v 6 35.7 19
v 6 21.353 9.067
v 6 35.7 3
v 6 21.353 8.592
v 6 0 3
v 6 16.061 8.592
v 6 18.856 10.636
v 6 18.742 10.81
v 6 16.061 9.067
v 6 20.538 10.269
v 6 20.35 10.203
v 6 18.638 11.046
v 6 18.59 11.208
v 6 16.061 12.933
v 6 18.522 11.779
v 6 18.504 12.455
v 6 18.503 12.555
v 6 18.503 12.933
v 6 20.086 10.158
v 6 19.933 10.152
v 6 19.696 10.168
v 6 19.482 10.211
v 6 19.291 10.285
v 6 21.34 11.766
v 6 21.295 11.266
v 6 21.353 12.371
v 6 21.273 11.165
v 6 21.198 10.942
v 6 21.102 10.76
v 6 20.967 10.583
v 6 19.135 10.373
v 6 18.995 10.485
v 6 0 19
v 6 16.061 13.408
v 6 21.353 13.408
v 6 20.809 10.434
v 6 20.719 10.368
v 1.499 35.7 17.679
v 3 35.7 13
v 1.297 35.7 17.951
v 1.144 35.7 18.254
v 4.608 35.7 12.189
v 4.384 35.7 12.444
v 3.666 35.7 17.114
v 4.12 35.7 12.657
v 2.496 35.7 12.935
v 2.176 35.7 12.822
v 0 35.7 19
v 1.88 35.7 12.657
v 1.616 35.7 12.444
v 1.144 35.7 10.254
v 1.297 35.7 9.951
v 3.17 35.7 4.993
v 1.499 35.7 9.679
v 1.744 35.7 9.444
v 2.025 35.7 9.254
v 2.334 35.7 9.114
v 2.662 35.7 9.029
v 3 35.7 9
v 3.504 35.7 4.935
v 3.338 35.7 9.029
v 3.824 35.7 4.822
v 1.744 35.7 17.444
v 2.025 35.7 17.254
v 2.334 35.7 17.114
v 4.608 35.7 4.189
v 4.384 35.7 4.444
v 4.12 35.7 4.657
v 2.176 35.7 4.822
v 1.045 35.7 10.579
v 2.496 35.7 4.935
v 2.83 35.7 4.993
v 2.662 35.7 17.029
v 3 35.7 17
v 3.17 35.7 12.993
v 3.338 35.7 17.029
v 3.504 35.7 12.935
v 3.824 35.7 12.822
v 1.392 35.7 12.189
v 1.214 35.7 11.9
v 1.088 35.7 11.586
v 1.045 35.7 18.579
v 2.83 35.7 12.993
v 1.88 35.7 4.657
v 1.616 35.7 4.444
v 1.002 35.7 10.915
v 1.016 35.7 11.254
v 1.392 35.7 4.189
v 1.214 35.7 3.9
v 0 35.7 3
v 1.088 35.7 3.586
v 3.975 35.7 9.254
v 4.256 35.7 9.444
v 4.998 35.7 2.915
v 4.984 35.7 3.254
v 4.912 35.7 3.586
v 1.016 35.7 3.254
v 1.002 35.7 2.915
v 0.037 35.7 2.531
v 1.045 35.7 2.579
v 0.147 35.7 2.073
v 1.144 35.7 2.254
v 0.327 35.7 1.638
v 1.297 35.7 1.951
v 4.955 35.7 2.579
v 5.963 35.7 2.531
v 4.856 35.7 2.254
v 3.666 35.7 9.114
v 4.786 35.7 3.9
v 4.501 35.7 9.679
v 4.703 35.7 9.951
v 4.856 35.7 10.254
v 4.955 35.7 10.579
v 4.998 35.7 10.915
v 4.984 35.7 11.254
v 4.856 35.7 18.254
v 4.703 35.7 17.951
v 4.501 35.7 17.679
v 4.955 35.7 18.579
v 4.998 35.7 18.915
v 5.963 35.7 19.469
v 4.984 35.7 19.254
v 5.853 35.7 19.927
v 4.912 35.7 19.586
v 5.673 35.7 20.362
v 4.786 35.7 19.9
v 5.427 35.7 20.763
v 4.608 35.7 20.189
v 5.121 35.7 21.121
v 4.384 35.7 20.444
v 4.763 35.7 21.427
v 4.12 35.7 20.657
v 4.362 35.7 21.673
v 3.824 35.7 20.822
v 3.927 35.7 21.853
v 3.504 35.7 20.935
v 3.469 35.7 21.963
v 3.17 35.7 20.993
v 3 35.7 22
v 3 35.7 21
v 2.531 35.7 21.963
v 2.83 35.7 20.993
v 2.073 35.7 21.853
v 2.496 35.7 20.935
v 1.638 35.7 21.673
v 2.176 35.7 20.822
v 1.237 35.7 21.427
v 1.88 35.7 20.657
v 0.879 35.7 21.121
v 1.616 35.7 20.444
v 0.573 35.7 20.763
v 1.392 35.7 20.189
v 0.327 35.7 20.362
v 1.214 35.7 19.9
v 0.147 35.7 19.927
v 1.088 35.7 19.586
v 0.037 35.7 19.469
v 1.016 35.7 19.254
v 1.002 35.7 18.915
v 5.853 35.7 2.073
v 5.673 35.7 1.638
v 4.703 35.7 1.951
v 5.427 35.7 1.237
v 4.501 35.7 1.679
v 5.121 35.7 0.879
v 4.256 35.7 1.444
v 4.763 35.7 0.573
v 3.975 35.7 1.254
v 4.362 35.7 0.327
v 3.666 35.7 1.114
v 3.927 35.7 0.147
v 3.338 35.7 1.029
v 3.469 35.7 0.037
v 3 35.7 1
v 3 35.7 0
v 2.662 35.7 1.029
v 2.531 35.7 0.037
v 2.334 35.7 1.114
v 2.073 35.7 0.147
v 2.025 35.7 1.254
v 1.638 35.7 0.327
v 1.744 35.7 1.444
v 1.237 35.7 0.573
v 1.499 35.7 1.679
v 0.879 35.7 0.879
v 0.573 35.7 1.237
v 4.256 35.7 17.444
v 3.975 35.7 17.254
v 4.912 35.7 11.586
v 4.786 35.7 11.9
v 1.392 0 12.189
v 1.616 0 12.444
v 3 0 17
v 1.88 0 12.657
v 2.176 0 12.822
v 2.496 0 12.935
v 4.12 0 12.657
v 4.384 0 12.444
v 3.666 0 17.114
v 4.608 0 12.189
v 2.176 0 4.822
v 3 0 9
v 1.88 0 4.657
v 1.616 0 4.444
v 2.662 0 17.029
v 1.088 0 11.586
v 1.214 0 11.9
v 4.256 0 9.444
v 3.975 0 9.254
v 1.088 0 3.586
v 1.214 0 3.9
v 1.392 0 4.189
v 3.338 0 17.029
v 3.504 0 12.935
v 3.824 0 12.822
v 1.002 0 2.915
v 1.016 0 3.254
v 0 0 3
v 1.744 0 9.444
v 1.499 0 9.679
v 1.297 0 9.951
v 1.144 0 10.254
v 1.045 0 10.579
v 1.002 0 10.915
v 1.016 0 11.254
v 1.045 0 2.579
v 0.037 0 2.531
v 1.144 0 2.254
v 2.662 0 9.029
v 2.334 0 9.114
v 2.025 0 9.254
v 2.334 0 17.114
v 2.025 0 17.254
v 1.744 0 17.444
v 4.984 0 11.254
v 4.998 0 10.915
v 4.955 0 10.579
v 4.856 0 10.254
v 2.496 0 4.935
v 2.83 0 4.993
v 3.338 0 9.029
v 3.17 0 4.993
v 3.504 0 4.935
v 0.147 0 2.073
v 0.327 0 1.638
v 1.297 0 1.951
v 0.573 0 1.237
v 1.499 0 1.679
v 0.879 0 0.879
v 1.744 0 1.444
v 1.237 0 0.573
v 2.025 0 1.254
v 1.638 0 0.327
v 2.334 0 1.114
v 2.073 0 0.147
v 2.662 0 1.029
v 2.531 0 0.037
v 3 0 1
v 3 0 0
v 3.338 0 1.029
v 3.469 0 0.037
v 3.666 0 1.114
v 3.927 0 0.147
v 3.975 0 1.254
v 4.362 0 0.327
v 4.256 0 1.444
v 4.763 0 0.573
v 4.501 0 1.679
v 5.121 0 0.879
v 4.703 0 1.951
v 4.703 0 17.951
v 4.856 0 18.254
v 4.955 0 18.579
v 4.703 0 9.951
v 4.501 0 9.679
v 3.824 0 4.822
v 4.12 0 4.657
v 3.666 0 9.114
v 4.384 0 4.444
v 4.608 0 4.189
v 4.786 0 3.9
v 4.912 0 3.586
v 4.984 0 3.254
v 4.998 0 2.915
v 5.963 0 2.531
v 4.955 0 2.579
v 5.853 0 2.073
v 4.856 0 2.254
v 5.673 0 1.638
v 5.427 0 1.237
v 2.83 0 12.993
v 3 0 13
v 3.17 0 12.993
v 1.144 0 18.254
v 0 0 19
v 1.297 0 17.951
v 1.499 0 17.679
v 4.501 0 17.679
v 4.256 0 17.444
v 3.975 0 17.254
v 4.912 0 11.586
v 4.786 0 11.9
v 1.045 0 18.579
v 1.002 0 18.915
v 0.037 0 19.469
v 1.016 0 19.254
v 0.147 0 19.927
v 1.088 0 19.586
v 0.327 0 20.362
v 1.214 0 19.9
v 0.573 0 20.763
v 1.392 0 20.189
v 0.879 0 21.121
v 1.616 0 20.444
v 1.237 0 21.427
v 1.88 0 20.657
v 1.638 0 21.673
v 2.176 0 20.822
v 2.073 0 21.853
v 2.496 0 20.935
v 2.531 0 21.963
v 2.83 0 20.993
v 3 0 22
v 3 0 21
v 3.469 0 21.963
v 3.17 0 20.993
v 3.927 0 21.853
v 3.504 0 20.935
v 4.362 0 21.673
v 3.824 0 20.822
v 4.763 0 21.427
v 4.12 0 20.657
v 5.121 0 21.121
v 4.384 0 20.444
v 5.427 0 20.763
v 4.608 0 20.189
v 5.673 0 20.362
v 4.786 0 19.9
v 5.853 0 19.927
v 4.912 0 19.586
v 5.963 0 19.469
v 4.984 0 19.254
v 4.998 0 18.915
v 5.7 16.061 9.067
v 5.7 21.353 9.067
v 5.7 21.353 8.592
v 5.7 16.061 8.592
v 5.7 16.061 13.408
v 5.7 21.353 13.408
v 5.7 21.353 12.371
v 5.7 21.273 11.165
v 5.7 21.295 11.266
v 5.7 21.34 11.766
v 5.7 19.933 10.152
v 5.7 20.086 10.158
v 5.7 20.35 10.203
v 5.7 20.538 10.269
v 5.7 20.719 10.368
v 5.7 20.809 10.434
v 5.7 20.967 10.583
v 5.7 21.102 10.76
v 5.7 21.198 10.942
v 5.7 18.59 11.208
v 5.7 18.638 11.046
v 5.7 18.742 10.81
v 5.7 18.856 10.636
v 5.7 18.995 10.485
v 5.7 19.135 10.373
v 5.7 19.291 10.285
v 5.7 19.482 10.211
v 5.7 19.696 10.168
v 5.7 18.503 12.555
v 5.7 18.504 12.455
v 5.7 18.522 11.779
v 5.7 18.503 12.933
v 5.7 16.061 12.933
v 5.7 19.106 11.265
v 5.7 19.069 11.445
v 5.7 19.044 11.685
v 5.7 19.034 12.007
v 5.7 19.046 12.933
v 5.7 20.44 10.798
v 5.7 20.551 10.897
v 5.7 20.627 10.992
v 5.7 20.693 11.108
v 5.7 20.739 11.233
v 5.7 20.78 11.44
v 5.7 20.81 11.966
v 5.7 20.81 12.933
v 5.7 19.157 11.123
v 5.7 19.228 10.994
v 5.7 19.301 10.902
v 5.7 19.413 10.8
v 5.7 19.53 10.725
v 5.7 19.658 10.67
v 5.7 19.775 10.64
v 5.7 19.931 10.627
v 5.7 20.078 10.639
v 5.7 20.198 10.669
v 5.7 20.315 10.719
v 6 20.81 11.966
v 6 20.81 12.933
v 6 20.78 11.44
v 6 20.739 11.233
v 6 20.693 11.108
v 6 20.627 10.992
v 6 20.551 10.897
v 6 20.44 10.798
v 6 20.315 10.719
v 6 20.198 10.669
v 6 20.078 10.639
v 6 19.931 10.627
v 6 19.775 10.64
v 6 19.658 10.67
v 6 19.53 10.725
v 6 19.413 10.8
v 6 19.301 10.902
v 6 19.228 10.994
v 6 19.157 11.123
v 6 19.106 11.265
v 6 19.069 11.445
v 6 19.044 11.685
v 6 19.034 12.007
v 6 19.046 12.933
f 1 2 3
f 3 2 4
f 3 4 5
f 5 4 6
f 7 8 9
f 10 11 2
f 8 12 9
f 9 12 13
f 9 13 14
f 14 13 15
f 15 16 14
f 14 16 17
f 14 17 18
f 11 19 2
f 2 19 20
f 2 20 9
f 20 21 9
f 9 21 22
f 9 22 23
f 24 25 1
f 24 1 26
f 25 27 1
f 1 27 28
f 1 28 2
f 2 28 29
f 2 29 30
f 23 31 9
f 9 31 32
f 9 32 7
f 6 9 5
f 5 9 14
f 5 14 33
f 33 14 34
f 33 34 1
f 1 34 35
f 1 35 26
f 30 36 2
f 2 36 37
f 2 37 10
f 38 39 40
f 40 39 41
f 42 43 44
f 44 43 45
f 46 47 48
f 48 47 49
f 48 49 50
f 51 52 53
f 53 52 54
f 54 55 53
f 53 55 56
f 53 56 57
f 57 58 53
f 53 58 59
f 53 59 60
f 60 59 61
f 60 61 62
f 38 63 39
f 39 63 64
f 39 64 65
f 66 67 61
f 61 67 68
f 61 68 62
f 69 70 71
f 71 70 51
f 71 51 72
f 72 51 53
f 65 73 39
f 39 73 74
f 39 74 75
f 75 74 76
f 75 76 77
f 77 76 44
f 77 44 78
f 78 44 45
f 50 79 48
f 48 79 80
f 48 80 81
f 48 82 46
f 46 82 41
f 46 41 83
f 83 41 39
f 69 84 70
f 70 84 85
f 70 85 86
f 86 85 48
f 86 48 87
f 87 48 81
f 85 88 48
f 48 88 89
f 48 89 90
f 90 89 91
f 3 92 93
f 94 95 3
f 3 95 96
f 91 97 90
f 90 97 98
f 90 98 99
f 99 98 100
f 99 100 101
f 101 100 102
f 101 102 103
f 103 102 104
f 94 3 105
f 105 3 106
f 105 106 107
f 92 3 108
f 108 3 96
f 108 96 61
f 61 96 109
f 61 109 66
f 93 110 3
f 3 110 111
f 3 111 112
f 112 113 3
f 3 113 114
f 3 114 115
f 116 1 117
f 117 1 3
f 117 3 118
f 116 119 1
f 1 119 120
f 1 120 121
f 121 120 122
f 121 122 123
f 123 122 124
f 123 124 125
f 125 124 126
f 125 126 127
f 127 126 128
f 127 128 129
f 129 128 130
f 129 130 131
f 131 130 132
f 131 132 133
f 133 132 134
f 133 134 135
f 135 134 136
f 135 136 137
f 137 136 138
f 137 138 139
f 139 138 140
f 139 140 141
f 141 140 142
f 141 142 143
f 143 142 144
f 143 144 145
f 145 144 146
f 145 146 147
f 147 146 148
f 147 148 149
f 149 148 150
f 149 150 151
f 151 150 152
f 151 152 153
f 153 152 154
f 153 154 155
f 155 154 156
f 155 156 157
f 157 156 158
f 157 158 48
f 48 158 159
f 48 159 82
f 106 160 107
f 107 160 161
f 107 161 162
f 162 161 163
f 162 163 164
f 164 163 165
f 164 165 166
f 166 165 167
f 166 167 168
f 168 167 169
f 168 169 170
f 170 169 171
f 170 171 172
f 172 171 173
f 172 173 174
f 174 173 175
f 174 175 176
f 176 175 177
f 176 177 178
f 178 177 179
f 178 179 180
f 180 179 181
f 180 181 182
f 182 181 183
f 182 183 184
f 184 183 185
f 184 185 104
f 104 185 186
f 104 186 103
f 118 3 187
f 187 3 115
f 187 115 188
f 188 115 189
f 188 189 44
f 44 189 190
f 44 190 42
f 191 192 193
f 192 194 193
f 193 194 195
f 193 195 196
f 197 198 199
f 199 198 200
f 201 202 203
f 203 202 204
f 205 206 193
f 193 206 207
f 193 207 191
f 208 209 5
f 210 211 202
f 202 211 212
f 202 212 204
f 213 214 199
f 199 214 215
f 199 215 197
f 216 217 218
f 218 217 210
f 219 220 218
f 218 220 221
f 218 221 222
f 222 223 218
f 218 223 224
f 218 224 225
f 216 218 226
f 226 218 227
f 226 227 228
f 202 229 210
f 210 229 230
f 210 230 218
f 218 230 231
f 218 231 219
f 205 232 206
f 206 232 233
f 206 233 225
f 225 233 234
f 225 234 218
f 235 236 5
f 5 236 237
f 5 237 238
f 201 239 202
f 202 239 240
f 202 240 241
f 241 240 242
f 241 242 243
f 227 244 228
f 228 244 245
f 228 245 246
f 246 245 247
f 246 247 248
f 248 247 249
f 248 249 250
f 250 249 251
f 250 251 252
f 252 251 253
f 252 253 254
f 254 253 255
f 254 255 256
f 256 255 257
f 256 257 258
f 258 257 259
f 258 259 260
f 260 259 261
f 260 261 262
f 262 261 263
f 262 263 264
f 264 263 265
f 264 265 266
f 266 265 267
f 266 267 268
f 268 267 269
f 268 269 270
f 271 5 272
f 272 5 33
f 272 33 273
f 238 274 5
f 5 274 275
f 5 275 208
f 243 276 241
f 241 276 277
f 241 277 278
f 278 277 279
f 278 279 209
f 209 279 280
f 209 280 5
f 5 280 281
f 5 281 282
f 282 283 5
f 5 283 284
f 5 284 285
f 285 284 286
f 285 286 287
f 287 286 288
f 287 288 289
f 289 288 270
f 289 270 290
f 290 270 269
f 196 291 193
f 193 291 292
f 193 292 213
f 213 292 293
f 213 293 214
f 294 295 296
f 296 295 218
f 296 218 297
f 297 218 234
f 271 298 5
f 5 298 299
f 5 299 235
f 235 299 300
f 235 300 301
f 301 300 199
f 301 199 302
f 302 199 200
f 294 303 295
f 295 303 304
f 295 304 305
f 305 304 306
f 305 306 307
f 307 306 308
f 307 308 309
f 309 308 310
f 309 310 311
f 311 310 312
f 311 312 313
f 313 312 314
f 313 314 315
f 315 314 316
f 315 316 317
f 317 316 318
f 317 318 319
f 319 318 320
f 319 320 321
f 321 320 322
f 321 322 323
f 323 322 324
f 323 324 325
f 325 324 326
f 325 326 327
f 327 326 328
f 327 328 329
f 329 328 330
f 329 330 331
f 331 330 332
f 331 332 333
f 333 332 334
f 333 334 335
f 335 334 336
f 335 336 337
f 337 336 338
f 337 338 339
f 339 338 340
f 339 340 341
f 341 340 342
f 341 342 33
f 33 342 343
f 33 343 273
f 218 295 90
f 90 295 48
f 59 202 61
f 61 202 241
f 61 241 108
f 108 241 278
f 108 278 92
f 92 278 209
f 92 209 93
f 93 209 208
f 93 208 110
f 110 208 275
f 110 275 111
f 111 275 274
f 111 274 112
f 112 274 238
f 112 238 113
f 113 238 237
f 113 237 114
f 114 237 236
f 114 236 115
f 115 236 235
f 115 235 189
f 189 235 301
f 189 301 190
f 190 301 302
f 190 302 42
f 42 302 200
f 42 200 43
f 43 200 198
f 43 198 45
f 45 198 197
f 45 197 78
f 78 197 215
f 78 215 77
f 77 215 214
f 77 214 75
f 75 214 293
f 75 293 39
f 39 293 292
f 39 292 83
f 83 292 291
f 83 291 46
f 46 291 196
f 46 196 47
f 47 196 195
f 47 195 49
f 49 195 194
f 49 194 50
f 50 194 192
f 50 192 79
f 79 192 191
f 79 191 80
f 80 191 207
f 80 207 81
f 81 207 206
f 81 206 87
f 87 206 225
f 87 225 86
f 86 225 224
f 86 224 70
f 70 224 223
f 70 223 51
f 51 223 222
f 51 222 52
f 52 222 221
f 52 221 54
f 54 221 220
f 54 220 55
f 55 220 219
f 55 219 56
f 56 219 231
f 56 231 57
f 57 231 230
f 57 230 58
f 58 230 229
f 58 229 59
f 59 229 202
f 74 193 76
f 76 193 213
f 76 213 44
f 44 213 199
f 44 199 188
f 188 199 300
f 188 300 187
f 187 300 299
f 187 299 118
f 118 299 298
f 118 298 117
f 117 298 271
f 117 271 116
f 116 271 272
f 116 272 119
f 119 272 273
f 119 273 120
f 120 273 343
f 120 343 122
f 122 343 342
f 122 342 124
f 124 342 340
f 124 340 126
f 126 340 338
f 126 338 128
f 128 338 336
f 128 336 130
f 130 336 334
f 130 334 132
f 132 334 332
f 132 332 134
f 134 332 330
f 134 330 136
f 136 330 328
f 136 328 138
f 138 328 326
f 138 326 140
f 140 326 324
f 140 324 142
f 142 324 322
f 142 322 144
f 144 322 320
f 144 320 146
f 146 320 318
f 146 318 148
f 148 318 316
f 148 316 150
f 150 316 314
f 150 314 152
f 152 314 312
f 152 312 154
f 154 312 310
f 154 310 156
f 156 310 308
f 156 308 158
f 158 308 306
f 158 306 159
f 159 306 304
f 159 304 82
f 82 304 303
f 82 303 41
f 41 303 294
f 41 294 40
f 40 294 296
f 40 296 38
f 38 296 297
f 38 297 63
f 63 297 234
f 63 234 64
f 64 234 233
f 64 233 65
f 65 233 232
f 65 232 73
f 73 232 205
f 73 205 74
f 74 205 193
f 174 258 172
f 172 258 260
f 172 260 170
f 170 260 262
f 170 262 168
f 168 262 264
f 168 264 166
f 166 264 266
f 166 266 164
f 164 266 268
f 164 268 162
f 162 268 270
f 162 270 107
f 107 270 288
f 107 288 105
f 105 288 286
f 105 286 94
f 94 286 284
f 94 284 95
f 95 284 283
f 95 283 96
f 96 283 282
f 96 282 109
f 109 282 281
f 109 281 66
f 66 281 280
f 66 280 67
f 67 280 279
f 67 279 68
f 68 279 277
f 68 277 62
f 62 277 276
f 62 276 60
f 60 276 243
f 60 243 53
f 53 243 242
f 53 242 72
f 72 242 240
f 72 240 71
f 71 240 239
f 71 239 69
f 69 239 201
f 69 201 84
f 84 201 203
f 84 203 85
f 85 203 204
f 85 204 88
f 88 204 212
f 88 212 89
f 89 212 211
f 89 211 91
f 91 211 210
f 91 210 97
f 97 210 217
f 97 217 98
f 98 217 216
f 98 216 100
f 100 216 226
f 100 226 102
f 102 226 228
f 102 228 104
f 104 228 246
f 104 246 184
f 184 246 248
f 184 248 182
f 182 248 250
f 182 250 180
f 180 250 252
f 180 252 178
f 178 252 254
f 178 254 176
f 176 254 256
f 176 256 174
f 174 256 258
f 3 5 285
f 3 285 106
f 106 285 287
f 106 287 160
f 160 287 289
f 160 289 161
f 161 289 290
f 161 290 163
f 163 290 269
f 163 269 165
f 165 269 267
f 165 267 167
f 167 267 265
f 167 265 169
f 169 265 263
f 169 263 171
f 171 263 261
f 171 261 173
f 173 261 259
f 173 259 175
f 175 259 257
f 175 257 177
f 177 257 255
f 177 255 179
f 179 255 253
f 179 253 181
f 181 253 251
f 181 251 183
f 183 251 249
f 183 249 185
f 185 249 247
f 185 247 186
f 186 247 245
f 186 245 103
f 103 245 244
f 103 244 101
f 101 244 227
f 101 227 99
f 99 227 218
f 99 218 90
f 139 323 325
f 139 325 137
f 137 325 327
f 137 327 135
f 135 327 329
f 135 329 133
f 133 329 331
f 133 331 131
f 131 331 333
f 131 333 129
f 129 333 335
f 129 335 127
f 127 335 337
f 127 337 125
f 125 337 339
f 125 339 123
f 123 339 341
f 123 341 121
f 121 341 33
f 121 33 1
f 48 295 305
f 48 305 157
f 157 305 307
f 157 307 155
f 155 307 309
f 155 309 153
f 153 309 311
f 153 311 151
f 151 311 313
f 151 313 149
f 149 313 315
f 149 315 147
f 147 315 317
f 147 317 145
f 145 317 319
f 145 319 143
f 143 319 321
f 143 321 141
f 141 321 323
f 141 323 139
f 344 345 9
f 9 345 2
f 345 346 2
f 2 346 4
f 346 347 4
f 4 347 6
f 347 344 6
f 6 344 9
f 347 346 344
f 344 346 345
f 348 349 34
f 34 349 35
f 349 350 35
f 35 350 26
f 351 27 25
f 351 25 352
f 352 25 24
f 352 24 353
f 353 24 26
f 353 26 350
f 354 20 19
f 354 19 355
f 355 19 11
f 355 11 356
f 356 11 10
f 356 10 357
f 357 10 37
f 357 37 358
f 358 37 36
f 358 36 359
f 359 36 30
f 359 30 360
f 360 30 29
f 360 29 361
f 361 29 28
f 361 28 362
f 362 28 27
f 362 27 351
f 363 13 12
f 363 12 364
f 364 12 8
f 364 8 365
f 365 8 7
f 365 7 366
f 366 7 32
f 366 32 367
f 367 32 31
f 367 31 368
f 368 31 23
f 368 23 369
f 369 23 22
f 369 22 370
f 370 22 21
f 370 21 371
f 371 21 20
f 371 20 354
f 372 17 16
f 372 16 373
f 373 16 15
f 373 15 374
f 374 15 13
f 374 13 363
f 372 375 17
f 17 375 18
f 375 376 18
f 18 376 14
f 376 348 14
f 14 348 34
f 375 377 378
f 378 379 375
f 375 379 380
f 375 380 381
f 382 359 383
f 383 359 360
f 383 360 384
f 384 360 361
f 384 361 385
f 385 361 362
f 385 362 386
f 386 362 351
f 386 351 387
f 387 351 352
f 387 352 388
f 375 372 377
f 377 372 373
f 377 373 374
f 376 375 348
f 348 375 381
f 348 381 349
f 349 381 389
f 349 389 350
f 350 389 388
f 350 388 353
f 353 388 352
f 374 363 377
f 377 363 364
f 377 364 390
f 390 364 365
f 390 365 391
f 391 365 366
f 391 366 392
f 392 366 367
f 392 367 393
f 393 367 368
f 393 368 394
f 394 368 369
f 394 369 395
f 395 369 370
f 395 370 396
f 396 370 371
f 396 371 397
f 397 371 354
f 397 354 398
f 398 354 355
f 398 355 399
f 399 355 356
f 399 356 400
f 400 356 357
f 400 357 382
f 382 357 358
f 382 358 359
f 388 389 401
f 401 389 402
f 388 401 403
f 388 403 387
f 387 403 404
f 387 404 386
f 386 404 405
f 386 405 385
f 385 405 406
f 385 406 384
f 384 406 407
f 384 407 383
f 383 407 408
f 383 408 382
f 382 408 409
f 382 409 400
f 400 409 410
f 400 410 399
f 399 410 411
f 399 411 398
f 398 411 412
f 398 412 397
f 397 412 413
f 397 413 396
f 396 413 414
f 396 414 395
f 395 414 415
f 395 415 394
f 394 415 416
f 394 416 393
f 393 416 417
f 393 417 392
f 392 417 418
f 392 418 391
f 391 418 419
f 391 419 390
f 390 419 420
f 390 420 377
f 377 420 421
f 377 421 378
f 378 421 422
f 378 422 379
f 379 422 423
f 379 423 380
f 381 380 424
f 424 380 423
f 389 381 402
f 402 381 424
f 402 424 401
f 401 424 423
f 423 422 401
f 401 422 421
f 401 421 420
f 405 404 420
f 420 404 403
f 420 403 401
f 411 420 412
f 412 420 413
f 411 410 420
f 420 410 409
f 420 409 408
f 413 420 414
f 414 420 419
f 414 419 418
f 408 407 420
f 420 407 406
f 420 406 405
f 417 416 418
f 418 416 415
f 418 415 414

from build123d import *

# Parameters (mm, degrees)
SKETCH1_W           = 6
SKETCH1_H           = 22
SKETCH1_R           = 2
BOSS_EXTRUDE1_DEPTH = 35.7
FILLET1_R           = 3
SKETCH2_W           = 0.474893162
SKETCH2_H           = 5.291666667
CUT_EXTRUDE1_DEPTH  = 0.3


with BuildPart() as part:
    # Sketch1 → Boss-Extrude1 (new body)
    with BuildSketch(Plane(origin=(0, 0, 0), x_dir=(1, 0, 0), z_dir=(0, 1, 0))):
        with Locations((3, -11)):
            Rectangle(SKETCH1_W, SKETCH1_H)
        with Locations(Location((3, -11, 0), (0, 0, 90))):
            Circle(SKETCH1_R, mode=Mode.SUBTRACT)
        with Locations(Location((3, -19, 0), (0, 0, 90))):
            Circle(SKETCH1_R, mode=Mode.SUBTRACT)
        with Locations(Location((3, -3, 0), (0, 0, 90))):
            Circle(SKETCH1_R, mode=Mode.SUBTRACT)
    extrude(amount=BOSS_EXTRUDE1_DEPTH)

    # Fillet1
    fillet1_edges = [part.edges().sort_by_distance(p)[0] for p in [
        (0, 17.85, 0),
        (6, 17.85, 0),
        (0, 17.85, 22),
        (6, 17.85, 22),
    ]]
    fillet(fillet1_edges, radius=FILLET1_R - 0.0001)  # a hair under: the kernel refuses the full size

    # Sketch2 → Cut-Extrude1 (cut)
    # profile 1 of 2: a face of its own
    with BuildSketch(Plane(origin=(6, 0, 0), x_dir=(0, 0, -1), z_dir=(1, 0, 0))):
        with BuildLine():
            Line((-13.408386752, 21.352777778), (-12.370617989, 21.352777778))
            add(Edge.make_bspline(
                [(-12.370617989, 21.352777778), (-12.299239595, 21.352699316), (-12.162475422, 21.352548979), (-11.966358612, 21.34799097), (-11.788241518, 21.341902995), (-11.628508204, 21.333463704), (-11.486667198, 21.323490288), (-11.363360329, 21.309502086), (-11.257618381, 21.294896639), (-11.19425982, 21.280047607), (-11.165364583, 21.273275574)],
                knots=[0, 0, 0, 0, 1.415646017, 2.712440637, 3.8905458, 4.950247383, 5.884950622, 6.709939814, 7.411656543, 8, 8, 8, 8], degree=3))
            add(Edge.make_bspline(
                [(-11.165364583, 21.273275574), (-11.128786264, 21.263263817), (-11.056491549, 21.243476216), (-10.952319734, 21.203843563), (-10.853208563, 21.156850289), (-10.758817992, 21.103292666), (-10.670307938, 21.040872825), (-10.586357852, 20.972121046), (-10.507708596, 20.895449984), (-10.434802444, 20.81171958), (-10.367848048, 20.722335453), (-10.310199599, 20.625963272), (-10.261928672, 20.52422523), (-10.220527774, 20.417192092), (-10.190730468, 20.303965056), (-10.168283369, 20.18533086), (-10.154035742, 20.061302221), (-10.152671154, 19.97654504), (-10.151976496, 19.933398438)],
                knots=[0, 0, 0, 0, 0.999701418, 1.975846123, 2.934577507, 3.890451536, 4.834027766, 5.787354733, 6.749476667, 7.726910423, 8.712836071, 9.690891519, 10.682875813, 11.679750201, 12.712814741, 13.765529915, 14.8625177, 16, 16, 16, 16], degree=3))
            add(Edge.make_bspline(
                [(-10.151976496, 19.933398438), (-10.15261365, 19.88988918), (-10.153860285, 19.804760378), (-10.168822526, 19.680220568), (-10.188976506, 19.561205859), (-10.219966097, 19.447980142), (-10.260554198, 19.341215822), (-10.308167182, 19.239281341), (-10.365594663, 19.143910884), (-10.431581489, 19.054758218), (-10.504986876, 18.97173966), (-10.585500246, 18.895456816), (-10.672796558, 18.82635621), (-10.766598377, 18.764282928), (-10.867820172, 18.71067641), (-10.974926761, 18.66266239), (-11.088849112, 18.622338286), (-11.167683628, 18.601126169), (-11.207765759, 18.590341213)],
                knots=[0, 0, 0, 0, 1.121902311, 2.195077645, 3.232258892, 4.234102512, 5.217864754, 6.176164875, 7.132989551, 8.084763148, 9.034132444, 9.988522005, 10.94243251, 11.903244335, 12.886203696, 13.894208494, 14.929344452, 16, 16, 16, 16], degree=3))
            add(Edge.make_bspline(
                [(-11.207765759, 18.590341213), (-11.240917799, 18.583291229), (-11.313572424, 18.567840781), (-11.433228682, 18.550592281), (-11.57254373, 18.535869956), (-11.731327415, 18.524831331), (-11.909437212, 18.515381369), (-12.10696947, 18.507870085), (-12.324311944, 18.503742806), (-12.475912515, 18.50352994), (-12.555063101, 18.503418803)],
                knots=[0, 0, 0, 0, 0.601384939, 1.31797006, 2.144135048, 3.087295005, 4.142315834, 5.309527816, 6.595305764, 8, 8, 8, 8], degree=3))
            Line((-12.555063101, 18.503418803), (-12.93349359, 18.503418803))
            Line((-12.93349359, 18.503418803), (-12.93349359, 16.061111111))
            Line((-12.93349359, 16.061111111), (-13.408386752, 16.061111111))
            Line((-13.408386752, 16.061111111), (-13.408386752, 21.352777778))
        make_face()
        with BuildLine():
            Line((-12.93349359, 20.810042735), (-12.93349359, 19.046153846))
            Line((-12.93349359, 19.046153846), (-12.007027911, 19.034493523))
            add(Edge.make_bspline(
                [(-12.007027911, 19.034493523), (-11.961791833, 19.034470143), (-11.874464516, 19.03442501), (-11.748316893, 19.040450288), (-11.631281423, 19.047405855), (-11.523717601, 19.05758993), (-11.425576938, 19.071985165), (-11.336695793, 19.086517197), (-11.257763354, 19.107540781), (-11.165387179, 19.135848278), (-11.062451642, 19.184127352), (-10.950468563, 19.254203972), (-10.855565414, 19.343528376), (-10.773441323, 19.44396093), (-10.708269341, 19.555689376), (-10.660559686, 19.675234078), (-10.632527222, 19.801369041), (-10.628768334, 19.88768087), (-10.626869658, 19.931278379)],
                knots=[0, 0, 0, 0, 1.160613943, 2.240541288, 3.23993089, 4.169200891, 5.011653406, 5.7853311, 6.478053781, 7.106038997, 8.262395093, 9.384106736, 10.481365981, 11.59014053, 12.70357646, 13.786202915, 14.881775077, 16, 16, 16, 16], degree=3))
            add(Edge.make_bspline(
                [(-10.626869658, 19.931278379), (-10.628778659, 19.973821131), (-10.632573518, 20.058390858), (-10.660779406, 20.182334936), (-10.708176583, 20.30061987), (-10.773878815, 20.410948226), (-10.853618381, 20.511019393), (-10.946297149, 20.597949574), (-11.051696961, 20.667832386), (-11.14974131, 20.712937467), (-11.236828818, 20.740477228), (-11.312472376, 20.759746213), (-11.397880896, 20.775130761), (-11.493082182, 20.787588104), (-11.597338347, 20.798252266), (-11.711545085, 20.805488208), (-11.83526976, 20.809723743), (-11.921161933, 20.80993383), (-11.965686765, 20.810042735)],
                knots=[0, 0, 0, 0, 1.120700087, 2.227813068, 3.331159281, 4.466773991, 5.599788987, 6.693661531, 7.80175334, 8.91857717, 9.525282508, 10.207424825, 10.974604443, 11.810962634, 12.737642355, 13.736264703, 14.826523623, 16, 16, 16, 16], degree=3))
            Line((-11.965686765, 20.810042735), (-12.93349359, 20.810042735))
        make_face(mode=Mode.SUBTRACT)
    # profile 2 of 2: a face of its own
    with BuildSketch(Plane(origin=(6, 0, 0), x_dir=(0, 0, -1), z_dir=(1, 0, 0))):
        with Locations((-8.829059829, 18.706944445)):
            Rectangle(SKETCH2_W, SKETCH2_H)
    extrude(amount=-CUT_EXTRUDE1_DEPTH, mode=Mode.SUBTRACT)


solid = part.part
